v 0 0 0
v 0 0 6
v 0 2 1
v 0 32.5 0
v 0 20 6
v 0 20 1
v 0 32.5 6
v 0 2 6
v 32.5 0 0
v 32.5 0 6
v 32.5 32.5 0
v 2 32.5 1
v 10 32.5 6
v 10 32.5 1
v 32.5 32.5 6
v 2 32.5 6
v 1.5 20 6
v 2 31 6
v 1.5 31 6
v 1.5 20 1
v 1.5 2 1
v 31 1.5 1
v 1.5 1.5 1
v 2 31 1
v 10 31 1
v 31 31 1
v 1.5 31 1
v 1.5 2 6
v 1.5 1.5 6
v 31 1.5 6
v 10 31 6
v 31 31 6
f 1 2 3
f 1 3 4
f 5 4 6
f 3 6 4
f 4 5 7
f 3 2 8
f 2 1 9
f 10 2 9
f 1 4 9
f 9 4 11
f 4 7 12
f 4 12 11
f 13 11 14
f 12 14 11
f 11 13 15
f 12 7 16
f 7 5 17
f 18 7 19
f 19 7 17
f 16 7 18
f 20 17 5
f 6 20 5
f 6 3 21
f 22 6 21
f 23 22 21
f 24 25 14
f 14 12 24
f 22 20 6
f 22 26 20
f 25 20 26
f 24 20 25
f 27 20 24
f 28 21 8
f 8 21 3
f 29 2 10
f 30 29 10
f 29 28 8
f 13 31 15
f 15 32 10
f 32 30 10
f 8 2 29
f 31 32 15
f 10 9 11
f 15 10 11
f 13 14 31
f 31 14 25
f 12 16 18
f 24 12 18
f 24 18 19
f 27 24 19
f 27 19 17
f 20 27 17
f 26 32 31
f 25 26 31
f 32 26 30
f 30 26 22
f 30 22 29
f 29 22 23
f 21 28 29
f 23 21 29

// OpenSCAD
base_size = 32.5;
base_apoio = 1.5;
h_base = 1;
h_apoio = 5;

cube([base_size, base_size, h_base]);

translate([0,0,h_base]) difference(){


	cube([base_size, base_size, h_apoio]);


	translate([base_apoio,base_apoio,0])
		cube([base_size - (base_apoio*2), base_size- (base_apoio*2), h_apoio]);


translate([0,2,0 ])
	cube([10,18,10]);


translate([2,30,0 ])
	cube([8,8,10]);

}
